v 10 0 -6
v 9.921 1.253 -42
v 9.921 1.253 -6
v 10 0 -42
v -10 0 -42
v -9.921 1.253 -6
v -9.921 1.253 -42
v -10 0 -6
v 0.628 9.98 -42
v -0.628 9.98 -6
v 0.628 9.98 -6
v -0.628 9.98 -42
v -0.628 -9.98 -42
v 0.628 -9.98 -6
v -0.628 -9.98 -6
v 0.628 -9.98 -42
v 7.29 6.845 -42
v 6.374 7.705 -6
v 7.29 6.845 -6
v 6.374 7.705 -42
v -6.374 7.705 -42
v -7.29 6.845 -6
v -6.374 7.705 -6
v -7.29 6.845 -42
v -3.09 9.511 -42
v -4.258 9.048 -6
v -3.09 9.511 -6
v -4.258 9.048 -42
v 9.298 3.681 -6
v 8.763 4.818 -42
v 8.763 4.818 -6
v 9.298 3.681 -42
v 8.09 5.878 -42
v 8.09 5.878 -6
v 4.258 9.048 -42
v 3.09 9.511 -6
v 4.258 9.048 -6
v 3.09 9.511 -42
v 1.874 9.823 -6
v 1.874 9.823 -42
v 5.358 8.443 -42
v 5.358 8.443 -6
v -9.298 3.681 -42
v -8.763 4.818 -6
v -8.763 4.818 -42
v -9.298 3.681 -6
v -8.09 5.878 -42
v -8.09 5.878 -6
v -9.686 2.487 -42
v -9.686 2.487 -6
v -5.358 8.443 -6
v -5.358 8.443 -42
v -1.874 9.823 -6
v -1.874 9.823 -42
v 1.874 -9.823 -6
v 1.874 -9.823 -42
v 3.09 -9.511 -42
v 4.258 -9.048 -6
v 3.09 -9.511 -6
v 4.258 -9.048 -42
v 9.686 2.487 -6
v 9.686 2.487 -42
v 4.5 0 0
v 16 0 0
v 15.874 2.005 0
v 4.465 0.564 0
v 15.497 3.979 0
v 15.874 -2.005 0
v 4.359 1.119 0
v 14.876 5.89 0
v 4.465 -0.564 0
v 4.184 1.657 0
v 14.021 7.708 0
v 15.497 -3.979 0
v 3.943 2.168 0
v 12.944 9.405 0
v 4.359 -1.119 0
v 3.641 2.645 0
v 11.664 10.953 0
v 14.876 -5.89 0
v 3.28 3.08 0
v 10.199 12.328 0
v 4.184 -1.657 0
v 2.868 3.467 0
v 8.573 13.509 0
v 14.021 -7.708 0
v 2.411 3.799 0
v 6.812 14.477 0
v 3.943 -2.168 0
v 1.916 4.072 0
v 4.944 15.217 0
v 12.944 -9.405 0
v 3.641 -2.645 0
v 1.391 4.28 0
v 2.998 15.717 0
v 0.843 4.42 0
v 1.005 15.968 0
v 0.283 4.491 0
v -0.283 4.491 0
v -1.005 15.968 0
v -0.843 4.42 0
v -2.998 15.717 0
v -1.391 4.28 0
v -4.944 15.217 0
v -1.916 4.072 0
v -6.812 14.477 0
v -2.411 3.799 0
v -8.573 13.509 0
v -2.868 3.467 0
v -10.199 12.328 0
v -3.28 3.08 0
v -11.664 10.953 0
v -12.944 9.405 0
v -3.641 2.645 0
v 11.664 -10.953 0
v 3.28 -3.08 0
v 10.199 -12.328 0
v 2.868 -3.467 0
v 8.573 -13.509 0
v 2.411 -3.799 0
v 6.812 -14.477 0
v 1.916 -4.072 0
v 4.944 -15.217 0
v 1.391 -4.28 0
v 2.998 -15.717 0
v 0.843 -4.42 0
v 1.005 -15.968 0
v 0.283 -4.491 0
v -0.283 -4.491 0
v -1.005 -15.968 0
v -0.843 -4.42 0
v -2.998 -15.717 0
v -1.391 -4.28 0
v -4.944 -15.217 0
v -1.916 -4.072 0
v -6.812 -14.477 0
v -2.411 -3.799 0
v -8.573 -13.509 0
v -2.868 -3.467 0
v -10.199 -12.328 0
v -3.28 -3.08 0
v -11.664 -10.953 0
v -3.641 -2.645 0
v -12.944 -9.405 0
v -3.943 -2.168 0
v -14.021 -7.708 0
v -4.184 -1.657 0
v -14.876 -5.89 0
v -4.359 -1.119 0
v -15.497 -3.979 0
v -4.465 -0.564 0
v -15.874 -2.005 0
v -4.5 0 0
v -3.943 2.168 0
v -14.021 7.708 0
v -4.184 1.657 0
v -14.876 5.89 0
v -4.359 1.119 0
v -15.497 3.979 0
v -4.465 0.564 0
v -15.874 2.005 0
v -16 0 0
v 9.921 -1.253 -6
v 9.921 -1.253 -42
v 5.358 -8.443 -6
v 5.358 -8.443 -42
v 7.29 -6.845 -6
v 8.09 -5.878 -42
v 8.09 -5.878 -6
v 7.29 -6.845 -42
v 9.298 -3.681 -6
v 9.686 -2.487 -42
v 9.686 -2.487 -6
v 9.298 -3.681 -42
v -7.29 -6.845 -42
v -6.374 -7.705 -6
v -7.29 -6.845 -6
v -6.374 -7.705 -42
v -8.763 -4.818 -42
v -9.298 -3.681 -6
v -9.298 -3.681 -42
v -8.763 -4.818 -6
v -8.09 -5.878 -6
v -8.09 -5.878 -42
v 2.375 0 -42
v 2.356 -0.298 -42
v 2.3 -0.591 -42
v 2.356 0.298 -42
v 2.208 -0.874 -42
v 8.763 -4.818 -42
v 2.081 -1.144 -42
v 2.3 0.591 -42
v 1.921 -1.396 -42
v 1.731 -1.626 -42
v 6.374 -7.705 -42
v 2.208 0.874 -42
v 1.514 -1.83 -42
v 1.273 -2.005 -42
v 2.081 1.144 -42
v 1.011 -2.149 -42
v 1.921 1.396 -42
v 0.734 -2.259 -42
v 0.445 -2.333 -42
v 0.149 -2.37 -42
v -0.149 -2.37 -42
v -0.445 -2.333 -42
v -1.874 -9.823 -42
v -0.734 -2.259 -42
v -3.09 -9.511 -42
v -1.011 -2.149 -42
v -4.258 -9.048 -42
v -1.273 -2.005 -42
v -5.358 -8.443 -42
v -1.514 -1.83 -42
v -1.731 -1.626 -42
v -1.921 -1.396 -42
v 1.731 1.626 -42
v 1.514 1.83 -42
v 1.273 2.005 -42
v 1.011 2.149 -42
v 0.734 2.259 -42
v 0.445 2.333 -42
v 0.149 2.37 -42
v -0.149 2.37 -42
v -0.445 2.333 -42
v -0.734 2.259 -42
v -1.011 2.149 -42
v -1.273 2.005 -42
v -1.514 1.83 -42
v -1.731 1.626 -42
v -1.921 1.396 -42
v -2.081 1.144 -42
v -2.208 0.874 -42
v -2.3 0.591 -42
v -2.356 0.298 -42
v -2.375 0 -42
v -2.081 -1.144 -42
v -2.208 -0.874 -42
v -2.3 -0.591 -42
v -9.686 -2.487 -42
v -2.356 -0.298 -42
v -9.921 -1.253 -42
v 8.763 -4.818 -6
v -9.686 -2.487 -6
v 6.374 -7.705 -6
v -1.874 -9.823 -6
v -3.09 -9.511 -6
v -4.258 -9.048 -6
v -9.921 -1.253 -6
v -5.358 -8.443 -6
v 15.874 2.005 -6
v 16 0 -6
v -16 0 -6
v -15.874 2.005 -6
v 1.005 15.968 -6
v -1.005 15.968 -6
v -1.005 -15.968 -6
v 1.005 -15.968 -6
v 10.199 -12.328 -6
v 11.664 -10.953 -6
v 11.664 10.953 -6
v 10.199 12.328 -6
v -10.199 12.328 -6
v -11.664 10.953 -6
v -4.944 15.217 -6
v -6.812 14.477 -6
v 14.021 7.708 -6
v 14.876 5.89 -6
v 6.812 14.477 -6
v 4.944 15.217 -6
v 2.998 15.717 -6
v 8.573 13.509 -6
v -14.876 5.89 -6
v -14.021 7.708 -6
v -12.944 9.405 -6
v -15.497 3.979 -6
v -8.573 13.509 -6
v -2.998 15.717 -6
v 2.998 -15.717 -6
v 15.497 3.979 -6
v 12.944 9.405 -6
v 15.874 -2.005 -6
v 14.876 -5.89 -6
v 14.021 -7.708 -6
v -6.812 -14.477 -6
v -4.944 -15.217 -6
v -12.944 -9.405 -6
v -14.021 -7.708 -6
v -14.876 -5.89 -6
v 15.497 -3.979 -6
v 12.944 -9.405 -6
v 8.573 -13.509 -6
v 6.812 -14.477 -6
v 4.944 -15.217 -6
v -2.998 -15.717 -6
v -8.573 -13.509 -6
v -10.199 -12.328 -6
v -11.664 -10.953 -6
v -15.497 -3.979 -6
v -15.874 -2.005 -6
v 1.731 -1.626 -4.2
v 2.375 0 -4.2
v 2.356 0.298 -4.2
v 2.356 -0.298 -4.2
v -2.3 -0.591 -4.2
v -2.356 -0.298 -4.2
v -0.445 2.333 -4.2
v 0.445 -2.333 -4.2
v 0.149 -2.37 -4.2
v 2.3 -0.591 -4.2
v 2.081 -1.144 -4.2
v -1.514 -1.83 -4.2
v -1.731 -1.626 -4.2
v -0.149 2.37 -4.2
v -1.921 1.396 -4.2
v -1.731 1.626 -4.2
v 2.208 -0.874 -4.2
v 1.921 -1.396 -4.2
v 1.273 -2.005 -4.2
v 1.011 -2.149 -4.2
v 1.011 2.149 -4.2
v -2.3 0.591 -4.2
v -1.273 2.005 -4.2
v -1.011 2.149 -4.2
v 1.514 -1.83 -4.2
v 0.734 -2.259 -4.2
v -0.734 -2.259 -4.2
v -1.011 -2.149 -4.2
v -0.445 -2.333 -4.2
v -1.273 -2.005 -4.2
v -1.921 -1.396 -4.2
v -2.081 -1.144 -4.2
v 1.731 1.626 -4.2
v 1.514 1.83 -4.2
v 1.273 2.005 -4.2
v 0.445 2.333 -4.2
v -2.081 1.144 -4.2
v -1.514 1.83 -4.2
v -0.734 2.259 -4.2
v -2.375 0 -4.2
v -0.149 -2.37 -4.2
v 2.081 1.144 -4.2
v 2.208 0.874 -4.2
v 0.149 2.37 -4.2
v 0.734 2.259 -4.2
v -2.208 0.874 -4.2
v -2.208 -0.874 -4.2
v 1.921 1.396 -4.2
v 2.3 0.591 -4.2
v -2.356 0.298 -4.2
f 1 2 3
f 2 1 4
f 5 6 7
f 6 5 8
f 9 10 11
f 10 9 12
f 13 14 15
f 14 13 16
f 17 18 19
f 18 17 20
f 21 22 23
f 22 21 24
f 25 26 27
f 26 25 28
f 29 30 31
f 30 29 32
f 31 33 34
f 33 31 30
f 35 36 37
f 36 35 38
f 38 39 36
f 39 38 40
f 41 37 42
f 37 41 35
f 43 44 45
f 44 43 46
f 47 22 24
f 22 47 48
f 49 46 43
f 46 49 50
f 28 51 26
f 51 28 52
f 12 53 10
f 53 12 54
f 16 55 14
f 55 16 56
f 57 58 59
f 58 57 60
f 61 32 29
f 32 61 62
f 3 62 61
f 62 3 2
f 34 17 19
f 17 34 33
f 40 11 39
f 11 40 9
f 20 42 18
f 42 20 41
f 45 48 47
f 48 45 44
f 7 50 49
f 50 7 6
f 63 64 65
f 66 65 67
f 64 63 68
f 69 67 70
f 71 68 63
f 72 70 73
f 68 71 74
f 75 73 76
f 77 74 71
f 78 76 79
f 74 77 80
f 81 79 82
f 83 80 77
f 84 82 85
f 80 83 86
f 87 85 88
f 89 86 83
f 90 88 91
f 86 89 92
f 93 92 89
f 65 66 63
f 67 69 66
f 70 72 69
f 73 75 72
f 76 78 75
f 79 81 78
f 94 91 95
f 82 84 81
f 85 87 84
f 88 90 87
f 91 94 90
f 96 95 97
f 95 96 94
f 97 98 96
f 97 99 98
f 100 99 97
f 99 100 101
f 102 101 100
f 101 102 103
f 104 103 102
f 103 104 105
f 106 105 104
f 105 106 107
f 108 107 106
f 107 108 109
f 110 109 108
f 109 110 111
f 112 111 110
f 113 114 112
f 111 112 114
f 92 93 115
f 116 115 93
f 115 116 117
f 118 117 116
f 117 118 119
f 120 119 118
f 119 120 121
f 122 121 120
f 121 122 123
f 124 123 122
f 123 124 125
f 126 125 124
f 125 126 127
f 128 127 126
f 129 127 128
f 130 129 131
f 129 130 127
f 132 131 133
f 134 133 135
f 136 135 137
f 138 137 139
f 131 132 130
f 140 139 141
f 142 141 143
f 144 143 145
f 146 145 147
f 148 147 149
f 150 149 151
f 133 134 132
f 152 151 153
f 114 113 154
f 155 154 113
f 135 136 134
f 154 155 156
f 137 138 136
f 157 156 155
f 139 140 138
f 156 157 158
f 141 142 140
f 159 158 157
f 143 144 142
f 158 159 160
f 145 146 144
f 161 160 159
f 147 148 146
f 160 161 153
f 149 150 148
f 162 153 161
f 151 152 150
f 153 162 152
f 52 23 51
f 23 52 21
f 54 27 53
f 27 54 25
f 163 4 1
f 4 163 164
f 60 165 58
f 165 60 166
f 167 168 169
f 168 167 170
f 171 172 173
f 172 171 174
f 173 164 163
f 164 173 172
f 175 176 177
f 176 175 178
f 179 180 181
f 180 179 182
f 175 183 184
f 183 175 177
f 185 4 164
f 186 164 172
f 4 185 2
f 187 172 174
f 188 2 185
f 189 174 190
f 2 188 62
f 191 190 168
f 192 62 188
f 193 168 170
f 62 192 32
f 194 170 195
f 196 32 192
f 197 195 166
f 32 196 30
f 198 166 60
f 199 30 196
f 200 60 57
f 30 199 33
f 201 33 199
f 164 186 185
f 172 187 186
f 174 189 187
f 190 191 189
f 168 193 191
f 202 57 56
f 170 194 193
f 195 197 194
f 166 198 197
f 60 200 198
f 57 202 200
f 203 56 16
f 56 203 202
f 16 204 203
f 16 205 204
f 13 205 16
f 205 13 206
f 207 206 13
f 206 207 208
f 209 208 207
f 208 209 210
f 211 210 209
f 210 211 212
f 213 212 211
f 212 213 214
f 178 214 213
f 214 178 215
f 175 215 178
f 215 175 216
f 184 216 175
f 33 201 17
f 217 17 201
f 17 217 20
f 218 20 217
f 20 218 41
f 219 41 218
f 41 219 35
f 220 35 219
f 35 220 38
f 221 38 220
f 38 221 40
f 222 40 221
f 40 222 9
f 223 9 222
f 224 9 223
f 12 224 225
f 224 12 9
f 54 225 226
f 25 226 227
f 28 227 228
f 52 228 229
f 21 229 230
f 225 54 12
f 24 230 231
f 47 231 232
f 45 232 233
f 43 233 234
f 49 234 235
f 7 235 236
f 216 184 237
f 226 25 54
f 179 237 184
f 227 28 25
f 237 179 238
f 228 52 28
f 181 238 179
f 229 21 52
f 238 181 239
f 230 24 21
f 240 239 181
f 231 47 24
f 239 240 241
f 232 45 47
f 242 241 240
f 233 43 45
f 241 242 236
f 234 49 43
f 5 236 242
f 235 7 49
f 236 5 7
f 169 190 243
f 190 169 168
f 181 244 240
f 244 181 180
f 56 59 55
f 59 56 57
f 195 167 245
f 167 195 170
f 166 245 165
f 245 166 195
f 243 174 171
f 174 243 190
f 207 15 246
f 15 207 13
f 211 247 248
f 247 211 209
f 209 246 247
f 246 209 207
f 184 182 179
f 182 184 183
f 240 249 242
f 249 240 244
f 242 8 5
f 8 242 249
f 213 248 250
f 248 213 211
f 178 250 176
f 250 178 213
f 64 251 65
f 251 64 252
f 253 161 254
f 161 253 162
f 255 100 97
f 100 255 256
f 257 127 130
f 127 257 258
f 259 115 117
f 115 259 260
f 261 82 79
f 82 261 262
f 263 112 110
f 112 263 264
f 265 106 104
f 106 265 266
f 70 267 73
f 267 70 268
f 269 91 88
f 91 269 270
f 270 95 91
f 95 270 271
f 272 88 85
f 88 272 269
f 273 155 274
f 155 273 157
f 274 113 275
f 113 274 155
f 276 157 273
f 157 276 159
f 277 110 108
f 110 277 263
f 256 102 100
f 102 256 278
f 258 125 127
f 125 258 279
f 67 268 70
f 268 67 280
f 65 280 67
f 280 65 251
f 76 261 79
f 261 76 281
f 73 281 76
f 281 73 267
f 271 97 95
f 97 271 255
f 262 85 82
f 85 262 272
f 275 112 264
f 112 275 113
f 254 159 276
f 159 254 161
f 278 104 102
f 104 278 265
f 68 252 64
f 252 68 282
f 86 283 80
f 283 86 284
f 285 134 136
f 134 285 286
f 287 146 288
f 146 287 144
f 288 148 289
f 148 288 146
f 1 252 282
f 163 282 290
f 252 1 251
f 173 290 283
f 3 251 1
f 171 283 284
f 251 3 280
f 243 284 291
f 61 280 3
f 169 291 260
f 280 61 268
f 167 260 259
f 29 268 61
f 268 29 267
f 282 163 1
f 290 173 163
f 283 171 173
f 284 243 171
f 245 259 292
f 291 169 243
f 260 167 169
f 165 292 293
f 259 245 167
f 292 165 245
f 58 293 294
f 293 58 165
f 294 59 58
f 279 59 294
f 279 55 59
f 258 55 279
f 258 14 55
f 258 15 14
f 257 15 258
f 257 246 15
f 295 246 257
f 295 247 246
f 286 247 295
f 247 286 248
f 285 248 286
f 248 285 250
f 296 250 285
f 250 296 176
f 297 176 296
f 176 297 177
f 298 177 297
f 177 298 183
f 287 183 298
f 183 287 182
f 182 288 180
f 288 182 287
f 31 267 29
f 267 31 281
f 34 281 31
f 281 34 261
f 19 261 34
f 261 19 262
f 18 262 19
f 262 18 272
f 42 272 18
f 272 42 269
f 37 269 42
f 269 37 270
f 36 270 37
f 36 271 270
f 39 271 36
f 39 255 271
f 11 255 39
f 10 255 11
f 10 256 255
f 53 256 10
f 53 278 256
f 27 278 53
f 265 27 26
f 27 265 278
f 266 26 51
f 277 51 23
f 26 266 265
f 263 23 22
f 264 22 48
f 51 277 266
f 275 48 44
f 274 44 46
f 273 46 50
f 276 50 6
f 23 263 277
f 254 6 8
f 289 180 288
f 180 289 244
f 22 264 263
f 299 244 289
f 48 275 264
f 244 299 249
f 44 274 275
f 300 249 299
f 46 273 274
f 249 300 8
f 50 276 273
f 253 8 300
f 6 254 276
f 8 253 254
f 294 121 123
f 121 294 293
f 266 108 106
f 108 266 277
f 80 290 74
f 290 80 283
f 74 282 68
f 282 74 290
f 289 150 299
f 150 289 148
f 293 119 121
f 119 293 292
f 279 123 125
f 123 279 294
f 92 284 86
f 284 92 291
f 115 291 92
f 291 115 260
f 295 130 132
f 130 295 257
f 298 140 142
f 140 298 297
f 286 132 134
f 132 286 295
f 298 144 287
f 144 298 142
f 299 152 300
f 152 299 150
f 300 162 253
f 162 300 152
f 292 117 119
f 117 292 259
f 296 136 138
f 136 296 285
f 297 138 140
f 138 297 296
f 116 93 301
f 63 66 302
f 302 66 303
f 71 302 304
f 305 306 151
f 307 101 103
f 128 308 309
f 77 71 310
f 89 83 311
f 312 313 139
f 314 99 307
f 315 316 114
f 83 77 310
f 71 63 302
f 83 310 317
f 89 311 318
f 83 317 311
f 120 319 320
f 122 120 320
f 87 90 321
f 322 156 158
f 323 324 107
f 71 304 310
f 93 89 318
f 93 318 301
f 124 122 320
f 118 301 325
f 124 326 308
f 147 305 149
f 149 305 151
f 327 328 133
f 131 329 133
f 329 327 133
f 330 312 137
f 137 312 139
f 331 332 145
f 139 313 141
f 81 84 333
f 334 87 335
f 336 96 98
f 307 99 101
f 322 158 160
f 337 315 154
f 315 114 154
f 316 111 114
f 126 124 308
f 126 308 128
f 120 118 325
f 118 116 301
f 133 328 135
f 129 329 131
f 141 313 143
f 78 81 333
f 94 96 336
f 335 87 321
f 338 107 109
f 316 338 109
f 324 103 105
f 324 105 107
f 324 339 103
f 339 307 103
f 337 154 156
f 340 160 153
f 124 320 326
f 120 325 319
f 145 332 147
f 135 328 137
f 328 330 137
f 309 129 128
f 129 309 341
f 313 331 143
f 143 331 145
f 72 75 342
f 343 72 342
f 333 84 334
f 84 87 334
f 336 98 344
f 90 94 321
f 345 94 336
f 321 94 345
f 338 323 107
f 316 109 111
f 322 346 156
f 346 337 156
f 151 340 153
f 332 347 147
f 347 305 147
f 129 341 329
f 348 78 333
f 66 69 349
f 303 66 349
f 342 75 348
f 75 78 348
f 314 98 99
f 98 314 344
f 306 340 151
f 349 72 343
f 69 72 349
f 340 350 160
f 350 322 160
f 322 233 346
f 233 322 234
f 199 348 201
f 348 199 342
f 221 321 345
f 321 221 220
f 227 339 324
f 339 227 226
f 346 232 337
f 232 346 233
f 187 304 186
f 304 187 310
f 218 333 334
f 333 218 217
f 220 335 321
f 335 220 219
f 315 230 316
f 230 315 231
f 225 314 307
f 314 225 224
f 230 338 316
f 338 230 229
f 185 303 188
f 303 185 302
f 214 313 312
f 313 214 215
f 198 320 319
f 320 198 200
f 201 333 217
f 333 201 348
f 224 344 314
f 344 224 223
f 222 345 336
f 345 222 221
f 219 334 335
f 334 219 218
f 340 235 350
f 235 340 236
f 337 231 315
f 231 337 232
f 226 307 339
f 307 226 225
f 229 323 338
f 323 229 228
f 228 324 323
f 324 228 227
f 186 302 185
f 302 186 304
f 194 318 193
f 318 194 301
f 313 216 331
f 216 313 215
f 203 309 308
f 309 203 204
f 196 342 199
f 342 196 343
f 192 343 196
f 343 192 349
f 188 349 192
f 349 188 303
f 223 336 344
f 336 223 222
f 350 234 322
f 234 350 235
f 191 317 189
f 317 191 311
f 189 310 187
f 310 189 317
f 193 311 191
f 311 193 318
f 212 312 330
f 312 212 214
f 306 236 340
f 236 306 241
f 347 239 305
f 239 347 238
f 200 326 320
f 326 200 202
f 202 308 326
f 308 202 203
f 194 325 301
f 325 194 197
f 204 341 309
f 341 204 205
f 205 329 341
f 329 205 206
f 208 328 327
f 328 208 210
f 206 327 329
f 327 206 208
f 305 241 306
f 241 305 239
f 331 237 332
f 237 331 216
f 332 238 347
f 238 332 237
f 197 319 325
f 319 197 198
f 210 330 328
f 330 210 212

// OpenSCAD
$fn = 50;


difference() {
	union() {
		translate(v = [0, 0, -42.0000000000]) {
			cylinder(h = 42, r = 10.0000000000);
		}
		translate(v = [0, 0, -6.0000000000]) {
			cylinder(h = 6, r = 16.0000000000);
		}
	}
	union() {
		translate(v = [0, 0, 0]) {
			rotate(a = [0, 0, 0]) {
				difference() {
					union() {
						#translate(v = [0, 0, -42.0000000000]) {
							cylinder(h = 42, r = 2.2500000000);
						}
						#translate(v = [0, 0, -4.2000000000]) {
							cylinder(h = 4.2000000000, r = 10.0000000000, r1 = 2.3750000000, r2 = 4.5000000000);
						}
						#translate(v = [0, 0, -42.0000000000]) {
							cylinder(h = 42, r = 2.3750000000);
						}
						#translate(v = [0, 0, -42.0000000000]) {
							cylinder(h = 42, r = 2.2500000000);
						}
					}
					union();
				}
			}
		}
	}
}
